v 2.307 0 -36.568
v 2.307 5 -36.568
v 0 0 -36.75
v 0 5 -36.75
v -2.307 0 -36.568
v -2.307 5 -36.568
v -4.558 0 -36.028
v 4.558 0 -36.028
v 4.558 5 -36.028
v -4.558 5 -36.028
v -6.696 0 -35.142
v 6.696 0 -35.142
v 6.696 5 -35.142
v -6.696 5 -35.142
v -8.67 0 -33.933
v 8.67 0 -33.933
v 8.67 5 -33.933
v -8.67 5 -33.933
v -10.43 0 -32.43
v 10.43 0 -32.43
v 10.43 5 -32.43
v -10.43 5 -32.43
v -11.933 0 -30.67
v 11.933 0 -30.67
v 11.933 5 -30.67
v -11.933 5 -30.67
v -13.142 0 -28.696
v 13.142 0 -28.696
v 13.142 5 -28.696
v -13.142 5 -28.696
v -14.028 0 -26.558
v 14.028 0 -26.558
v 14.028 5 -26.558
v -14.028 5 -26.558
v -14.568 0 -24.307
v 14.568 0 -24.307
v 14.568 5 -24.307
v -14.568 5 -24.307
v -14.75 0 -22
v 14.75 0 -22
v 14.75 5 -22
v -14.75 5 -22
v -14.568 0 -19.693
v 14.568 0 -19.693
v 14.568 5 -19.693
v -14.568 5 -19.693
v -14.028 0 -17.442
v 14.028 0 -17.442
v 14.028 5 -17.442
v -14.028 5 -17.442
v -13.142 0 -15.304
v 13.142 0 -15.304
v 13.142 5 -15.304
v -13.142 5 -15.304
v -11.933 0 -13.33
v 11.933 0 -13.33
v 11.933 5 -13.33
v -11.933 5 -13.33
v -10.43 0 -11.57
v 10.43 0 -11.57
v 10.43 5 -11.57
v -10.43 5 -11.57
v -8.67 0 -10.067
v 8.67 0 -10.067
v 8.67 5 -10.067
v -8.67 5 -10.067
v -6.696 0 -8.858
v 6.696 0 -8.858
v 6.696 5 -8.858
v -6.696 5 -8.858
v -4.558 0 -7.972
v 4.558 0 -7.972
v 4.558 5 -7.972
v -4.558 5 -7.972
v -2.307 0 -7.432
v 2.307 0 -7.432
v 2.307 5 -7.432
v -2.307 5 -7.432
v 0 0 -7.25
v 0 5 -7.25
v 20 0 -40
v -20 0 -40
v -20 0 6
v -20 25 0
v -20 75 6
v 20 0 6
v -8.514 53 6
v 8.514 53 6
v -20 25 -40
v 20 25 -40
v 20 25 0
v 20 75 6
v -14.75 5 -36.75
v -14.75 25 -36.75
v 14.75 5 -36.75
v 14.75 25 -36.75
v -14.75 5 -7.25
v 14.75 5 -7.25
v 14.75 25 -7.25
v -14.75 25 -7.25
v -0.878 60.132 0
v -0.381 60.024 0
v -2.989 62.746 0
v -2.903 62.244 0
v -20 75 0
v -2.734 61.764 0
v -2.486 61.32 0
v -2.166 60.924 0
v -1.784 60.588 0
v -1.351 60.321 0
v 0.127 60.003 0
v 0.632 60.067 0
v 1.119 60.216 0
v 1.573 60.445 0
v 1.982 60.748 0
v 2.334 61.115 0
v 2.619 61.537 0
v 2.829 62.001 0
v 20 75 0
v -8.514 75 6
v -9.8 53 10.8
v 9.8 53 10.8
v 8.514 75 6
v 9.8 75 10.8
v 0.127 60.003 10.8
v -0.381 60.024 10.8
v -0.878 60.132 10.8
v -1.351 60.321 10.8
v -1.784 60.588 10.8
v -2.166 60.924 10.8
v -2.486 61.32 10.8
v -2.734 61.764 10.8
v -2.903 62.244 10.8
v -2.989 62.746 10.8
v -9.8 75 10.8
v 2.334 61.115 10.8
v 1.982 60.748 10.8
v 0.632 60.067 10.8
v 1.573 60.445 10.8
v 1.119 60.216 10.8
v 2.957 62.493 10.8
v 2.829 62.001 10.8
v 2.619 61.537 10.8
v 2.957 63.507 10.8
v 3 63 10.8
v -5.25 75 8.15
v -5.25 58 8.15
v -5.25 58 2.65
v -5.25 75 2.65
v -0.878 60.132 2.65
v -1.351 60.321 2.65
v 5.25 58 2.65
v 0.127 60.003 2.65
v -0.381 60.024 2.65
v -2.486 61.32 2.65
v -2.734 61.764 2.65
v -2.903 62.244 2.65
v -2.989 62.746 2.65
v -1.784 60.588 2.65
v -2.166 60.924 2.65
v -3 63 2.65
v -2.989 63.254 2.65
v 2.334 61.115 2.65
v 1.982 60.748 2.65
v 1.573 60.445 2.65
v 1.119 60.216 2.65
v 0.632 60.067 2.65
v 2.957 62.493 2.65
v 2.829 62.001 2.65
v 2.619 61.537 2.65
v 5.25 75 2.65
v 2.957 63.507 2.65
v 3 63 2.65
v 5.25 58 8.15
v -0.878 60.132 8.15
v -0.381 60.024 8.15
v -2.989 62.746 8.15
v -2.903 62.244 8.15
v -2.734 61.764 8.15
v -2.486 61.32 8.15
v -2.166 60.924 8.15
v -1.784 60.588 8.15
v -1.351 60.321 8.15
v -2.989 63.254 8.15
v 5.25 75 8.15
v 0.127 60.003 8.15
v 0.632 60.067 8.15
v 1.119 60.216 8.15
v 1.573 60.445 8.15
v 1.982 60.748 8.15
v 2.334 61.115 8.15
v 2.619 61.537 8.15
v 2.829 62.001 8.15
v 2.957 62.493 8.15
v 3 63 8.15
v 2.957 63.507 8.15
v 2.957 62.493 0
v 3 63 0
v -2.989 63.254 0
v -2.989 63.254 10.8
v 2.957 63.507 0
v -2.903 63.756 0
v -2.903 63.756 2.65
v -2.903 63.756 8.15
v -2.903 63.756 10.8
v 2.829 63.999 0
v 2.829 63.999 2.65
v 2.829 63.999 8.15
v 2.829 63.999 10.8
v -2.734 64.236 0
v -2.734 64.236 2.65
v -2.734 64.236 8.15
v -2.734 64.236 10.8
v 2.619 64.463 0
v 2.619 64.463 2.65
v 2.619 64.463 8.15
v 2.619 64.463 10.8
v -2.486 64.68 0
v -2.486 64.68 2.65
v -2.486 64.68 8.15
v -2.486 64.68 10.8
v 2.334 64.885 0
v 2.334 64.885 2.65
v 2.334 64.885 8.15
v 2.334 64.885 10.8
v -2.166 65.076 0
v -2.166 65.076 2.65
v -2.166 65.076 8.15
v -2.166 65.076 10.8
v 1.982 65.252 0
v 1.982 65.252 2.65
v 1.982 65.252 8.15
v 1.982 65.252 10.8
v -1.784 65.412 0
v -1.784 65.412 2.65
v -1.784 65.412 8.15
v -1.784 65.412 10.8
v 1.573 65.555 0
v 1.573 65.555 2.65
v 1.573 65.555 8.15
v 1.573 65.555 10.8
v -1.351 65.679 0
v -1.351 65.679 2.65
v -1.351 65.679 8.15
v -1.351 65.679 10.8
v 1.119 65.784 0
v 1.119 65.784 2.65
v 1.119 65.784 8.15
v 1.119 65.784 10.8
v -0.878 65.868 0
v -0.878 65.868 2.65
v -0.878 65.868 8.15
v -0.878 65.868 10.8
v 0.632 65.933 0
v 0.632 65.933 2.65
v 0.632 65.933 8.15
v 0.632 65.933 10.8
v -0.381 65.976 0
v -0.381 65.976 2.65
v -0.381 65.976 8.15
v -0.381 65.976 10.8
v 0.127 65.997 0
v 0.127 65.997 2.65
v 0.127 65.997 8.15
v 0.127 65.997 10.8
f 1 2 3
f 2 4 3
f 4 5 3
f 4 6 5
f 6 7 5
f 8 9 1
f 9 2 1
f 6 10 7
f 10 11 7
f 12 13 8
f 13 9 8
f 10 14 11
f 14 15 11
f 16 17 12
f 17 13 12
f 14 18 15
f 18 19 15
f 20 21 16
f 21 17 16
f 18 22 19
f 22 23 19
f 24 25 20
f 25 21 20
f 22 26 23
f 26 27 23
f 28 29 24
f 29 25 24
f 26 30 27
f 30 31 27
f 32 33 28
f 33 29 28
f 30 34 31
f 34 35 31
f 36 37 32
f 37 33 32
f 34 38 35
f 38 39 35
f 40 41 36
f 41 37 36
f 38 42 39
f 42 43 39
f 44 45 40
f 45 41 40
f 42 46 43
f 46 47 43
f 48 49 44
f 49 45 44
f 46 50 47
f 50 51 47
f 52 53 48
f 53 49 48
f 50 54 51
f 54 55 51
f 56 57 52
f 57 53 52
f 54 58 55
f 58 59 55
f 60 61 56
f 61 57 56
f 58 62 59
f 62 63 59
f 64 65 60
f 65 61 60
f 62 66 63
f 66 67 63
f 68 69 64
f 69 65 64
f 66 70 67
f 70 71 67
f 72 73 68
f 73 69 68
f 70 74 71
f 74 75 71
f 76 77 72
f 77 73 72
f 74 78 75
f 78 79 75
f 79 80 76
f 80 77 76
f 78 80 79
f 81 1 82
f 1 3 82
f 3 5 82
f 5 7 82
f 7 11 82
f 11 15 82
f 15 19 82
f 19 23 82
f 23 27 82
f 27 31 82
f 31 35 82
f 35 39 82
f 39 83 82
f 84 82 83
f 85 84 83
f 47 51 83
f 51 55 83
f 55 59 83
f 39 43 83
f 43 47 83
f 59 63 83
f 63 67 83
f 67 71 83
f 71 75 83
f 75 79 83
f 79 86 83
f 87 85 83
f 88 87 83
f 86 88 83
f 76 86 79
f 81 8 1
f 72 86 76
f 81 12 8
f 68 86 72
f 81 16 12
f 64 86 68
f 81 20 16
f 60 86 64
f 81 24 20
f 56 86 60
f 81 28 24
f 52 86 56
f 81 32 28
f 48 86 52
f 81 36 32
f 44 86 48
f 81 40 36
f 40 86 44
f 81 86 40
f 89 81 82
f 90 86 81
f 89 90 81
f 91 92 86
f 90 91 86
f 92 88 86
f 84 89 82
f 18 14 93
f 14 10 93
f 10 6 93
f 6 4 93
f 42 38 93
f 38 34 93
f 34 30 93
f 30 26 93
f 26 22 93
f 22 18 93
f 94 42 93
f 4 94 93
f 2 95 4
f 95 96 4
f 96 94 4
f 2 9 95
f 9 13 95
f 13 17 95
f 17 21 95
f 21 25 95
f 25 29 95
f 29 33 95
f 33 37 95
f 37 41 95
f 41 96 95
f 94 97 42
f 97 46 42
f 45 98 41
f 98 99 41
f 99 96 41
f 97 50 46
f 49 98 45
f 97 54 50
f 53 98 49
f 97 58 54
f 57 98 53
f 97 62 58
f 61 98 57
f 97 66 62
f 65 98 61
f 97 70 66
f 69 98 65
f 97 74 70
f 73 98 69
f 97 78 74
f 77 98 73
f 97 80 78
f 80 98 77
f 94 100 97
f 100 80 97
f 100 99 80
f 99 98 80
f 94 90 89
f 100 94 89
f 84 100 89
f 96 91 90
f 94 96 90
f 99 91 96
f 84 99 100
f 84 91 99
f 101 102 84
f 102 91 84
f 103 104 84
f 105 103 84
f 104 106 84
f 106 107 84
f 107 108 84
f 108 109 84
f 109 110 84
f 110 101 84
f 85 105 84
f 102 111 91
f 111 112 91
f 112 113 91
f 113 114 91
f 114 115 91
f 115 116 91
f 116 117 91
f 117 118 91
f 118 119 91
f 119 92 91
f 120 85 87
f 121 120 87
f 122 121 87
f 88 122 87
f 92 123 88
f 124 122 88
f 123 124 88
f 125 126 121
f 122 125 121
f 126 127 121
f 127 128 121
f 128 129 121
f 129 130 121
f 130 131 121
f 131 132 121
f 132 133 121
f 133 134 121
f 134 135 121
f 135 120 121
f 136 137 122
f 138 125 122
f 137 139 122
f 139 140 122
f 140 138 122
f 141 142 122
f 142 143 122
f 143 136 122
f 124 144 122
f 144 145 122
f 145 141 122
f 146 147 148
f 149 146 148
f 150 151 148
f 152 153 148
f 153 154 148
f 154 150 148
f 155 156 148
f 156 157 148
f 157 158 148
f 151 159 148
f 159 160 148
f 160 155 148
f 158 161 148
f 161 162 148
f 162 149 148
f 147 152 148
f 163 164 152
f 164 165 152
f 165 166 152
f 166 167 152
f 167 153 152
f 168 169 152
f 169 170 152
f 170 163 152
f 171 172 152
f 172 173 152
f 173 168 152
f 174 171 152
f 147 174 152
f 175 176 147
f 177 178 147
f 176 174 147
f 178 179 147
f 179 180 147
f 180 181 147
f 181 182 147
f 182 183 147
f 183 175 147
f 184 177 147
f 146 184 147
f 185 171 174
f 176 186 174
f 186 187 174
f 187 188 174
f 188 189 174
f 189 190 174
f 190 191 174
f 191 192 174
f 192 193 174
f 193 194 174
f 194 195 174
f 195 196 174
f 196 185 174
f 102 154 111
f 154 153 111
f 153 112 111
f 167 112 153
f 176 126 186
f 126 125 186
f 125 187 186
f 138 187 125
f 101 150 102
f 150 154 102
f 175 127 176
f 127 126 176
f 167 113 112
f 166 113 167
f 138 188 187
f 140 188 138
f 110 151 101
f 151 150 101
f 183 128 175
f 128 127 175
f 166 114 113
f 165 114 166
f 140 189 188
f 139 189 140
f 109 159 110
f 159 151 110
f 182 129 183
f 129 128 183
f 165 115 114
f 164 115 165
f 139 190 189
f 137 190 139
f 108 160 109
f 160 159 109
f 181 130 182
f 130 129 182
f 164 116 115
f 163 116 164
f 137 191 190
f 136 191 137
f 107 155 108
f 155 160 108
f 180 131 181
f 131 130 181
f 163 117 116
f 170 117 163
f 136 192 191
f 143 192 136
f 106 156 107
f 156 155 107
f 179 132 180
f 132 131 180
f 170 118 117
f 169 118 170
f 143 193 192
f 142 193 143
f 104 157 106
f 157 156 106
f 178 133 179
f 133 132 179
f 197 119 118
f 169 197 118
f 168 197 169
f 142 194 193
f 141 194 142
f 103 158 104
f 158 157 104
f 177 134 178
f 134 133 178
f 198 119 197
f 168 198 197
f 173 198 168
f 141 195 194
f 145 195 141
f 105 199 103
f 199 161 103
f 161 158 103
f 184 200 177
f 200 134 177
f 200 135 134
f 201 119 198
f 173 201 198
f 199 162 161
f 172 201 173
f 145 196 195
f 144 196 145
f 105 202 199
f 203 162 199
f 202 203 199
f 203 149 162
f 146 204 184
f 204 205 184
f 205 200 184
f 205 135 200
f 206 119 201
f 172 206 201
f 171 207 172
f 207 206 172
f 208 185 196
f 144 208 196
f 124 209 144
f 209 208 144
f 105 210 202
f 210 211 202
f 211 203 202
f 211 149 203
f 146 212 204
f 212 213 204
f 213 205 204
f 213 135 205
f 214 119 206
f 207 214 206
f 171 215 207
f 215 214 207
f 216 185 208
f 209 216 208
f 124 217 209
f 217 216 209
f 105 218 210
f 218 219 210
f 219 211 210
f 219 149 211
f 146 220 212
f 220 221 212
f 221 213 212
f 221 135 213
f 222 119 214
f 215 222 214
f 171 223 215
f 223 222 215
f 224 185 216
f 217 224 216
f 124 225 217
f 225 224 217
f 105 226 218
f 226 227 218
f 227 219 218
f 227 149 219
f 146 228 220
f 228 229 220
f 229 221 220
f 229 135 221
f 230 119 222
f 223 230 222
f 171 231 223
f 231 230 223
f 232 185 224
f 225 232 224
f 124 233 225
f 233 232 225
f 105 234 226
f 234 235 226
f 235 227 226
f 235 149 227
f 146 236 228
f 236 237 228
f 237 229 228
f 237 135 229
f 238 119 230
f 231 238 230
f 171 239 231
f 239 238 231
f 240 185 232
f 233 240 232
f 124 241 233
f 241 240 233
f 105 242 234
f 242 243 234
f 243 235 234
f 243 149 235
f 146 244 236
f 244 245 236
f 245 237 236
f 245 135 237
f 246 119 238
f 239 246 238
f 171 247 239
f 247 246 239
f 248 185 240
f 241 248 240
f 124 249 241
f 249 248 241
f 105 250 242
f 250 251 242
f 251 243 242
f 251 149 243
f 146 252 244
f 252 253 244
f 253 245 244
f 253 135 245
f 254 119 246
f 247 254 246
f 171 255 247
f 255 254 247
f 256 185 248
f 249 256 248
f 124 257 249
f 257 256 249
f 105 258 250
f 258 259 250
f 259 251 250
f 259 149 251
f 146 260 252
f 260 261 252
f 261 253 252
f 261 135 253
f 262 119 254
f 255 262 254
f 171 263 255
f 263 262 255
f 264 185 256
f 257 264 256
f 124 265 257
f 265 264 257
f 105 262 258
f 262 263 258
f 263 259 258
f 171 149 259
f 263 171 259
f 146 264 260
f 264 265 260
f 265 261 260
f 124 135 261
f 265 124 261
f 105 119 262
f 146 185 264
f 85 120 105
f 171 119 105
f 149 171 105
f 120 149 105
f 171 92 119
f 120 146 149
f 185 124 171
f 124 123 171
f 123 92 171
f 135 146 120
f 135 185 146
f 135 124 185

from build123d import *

# Parameters (mm, degrees)
SKIZZE1_W                       = 40
SKIZZE1_H                       = 75
AUFSATZ_LINEAR_AUSTRAGEN1_DEPTH = 6
AUFSATZ_LINEAR_AUSTRAGEN2_DEPTH = 22
SKIZZE3_W                       = 10.5
SKIZZE3_H                       = 5.5
SCHNITT_LINEAR_AUSTRAGEN1_DEPTH = 17
SKIZZE4_R                       = 3
SCHNITT_LINEAR_AUSTRAGEN2_DEPTH = 79.368616167
SKIZZE5_W                       = 40
SKIZZE5_H                       = 25
AUFSATZ_LINEAR_AUSTRAGEN3_DEPTH = 40
SKIZZE6_W                       = 29.5
SKIZZE6_H                       = 29.5
SCHNITT_LINEAR_AUSTRAGEN3_DEPTH = 20
SKIZZE7_R                       = 14.75
SCHNITT_LINEAR_AUSTRAGEN4_DEPTH = 84.066238629


with BuildPart() as part:
    # Skizze1 → Aufsatz-Linear austragen1 (new body)
    with BuildSketch(Plane.XY):
        with Locations((0, 37.5)):
            Rectangle(SKIZZE1_W, SKIZZE1_H)
    extrude(amount=AUFSATZ_LINEAR_AUSTRAGEN1_DEPTH)

    # Skizze2 → Aufsatz-Linear austragen2 (add)
    with BuildSketch(Plane(origin=(0, 75, 0), x_dir=(1, 0, 0), z_dir=(0, 1, 0))):
        Polygon((8.513843876, -6), (-8.513843876, -6), (-9.8, -10.8), (9.8, -10.8), align=None)
    extrude(amount=-AUFSATZ_LINEAR_AUSTRAGEN2_DEPTH)

    # Skizze3 → Schnitt-Linear austragen1 (cut)
    with BuildSketch(Plane(origin=(0, 75, 0), x_dir=(1, 0, 0), z_dir=(0, 1, 0))):
        with Locations((0, -5.4)):
            Rectangle(SKIZZE3_W, SKIZZE3_H)
    extrude(amount=-SCHNITT_LINEAR_AUSTRAGEN1_DEPTH, mode=Mode.SUBTRACT)

    # Skizze4 → Schnitt-Linear austragen2 (cut, through all)
    with BuildSketch(Plane.XY.offset(10.8)):
        with Locations((0, 63)):
            Circle(SKIZZE4_R)
    extrude(amount=-SCHNITT_LINEAR_AUSTRAGEN2_DEPTH, mode=Mode.SUBTRACT)

    # Skizze5 → Aufsatz-Linear austragen3 (add)
    with BuildSketch(Plane(origin=(0, 0, 0), x_dir=(-1, 0, 0), z_dir=(0, 0, -1))):
        with Locations((0, 12.5)):
            Rectangle(SKIZZE5_W, SKIZZE5_H)
    extrude(amount=AUFSATZ_LINEAR_AUSTRAGEN3_DEPTH)

    # Skizze6 → Schnitt-Linear austragen3 (cut)
    with BuildSketch(Plane(origin=(0, 25, 0), x_dir=(1, 0, 0), z_dir=(0, 1, 0))):
        with Locations((0, 22)):
            Rectangle(SKIZZE6_W, SKIZZE6_H)
    extrude(amount=-SCHNITT_LINEAR_AUSTRAGEN3_DEPTH, mode=Mode.SUBTRACT)

    # Skizze7 → Schnitt-Linear austragen4 (cut, through all)
    with BuildSketch(Plane(origin=(0, 5, 0), x_dir=(1, 0, 0), z_dir=(0, 1, 0))):
        with Locations(Location((0, 22, 0), (0, 0, 270))):
            Circle(SKIZZE7_R)
    extrude(amount=-SCHNITT_LINEAR_AUSTRAGEN4_DEPTH, mode=Mode.SUBTRACT)


solid = part.part
